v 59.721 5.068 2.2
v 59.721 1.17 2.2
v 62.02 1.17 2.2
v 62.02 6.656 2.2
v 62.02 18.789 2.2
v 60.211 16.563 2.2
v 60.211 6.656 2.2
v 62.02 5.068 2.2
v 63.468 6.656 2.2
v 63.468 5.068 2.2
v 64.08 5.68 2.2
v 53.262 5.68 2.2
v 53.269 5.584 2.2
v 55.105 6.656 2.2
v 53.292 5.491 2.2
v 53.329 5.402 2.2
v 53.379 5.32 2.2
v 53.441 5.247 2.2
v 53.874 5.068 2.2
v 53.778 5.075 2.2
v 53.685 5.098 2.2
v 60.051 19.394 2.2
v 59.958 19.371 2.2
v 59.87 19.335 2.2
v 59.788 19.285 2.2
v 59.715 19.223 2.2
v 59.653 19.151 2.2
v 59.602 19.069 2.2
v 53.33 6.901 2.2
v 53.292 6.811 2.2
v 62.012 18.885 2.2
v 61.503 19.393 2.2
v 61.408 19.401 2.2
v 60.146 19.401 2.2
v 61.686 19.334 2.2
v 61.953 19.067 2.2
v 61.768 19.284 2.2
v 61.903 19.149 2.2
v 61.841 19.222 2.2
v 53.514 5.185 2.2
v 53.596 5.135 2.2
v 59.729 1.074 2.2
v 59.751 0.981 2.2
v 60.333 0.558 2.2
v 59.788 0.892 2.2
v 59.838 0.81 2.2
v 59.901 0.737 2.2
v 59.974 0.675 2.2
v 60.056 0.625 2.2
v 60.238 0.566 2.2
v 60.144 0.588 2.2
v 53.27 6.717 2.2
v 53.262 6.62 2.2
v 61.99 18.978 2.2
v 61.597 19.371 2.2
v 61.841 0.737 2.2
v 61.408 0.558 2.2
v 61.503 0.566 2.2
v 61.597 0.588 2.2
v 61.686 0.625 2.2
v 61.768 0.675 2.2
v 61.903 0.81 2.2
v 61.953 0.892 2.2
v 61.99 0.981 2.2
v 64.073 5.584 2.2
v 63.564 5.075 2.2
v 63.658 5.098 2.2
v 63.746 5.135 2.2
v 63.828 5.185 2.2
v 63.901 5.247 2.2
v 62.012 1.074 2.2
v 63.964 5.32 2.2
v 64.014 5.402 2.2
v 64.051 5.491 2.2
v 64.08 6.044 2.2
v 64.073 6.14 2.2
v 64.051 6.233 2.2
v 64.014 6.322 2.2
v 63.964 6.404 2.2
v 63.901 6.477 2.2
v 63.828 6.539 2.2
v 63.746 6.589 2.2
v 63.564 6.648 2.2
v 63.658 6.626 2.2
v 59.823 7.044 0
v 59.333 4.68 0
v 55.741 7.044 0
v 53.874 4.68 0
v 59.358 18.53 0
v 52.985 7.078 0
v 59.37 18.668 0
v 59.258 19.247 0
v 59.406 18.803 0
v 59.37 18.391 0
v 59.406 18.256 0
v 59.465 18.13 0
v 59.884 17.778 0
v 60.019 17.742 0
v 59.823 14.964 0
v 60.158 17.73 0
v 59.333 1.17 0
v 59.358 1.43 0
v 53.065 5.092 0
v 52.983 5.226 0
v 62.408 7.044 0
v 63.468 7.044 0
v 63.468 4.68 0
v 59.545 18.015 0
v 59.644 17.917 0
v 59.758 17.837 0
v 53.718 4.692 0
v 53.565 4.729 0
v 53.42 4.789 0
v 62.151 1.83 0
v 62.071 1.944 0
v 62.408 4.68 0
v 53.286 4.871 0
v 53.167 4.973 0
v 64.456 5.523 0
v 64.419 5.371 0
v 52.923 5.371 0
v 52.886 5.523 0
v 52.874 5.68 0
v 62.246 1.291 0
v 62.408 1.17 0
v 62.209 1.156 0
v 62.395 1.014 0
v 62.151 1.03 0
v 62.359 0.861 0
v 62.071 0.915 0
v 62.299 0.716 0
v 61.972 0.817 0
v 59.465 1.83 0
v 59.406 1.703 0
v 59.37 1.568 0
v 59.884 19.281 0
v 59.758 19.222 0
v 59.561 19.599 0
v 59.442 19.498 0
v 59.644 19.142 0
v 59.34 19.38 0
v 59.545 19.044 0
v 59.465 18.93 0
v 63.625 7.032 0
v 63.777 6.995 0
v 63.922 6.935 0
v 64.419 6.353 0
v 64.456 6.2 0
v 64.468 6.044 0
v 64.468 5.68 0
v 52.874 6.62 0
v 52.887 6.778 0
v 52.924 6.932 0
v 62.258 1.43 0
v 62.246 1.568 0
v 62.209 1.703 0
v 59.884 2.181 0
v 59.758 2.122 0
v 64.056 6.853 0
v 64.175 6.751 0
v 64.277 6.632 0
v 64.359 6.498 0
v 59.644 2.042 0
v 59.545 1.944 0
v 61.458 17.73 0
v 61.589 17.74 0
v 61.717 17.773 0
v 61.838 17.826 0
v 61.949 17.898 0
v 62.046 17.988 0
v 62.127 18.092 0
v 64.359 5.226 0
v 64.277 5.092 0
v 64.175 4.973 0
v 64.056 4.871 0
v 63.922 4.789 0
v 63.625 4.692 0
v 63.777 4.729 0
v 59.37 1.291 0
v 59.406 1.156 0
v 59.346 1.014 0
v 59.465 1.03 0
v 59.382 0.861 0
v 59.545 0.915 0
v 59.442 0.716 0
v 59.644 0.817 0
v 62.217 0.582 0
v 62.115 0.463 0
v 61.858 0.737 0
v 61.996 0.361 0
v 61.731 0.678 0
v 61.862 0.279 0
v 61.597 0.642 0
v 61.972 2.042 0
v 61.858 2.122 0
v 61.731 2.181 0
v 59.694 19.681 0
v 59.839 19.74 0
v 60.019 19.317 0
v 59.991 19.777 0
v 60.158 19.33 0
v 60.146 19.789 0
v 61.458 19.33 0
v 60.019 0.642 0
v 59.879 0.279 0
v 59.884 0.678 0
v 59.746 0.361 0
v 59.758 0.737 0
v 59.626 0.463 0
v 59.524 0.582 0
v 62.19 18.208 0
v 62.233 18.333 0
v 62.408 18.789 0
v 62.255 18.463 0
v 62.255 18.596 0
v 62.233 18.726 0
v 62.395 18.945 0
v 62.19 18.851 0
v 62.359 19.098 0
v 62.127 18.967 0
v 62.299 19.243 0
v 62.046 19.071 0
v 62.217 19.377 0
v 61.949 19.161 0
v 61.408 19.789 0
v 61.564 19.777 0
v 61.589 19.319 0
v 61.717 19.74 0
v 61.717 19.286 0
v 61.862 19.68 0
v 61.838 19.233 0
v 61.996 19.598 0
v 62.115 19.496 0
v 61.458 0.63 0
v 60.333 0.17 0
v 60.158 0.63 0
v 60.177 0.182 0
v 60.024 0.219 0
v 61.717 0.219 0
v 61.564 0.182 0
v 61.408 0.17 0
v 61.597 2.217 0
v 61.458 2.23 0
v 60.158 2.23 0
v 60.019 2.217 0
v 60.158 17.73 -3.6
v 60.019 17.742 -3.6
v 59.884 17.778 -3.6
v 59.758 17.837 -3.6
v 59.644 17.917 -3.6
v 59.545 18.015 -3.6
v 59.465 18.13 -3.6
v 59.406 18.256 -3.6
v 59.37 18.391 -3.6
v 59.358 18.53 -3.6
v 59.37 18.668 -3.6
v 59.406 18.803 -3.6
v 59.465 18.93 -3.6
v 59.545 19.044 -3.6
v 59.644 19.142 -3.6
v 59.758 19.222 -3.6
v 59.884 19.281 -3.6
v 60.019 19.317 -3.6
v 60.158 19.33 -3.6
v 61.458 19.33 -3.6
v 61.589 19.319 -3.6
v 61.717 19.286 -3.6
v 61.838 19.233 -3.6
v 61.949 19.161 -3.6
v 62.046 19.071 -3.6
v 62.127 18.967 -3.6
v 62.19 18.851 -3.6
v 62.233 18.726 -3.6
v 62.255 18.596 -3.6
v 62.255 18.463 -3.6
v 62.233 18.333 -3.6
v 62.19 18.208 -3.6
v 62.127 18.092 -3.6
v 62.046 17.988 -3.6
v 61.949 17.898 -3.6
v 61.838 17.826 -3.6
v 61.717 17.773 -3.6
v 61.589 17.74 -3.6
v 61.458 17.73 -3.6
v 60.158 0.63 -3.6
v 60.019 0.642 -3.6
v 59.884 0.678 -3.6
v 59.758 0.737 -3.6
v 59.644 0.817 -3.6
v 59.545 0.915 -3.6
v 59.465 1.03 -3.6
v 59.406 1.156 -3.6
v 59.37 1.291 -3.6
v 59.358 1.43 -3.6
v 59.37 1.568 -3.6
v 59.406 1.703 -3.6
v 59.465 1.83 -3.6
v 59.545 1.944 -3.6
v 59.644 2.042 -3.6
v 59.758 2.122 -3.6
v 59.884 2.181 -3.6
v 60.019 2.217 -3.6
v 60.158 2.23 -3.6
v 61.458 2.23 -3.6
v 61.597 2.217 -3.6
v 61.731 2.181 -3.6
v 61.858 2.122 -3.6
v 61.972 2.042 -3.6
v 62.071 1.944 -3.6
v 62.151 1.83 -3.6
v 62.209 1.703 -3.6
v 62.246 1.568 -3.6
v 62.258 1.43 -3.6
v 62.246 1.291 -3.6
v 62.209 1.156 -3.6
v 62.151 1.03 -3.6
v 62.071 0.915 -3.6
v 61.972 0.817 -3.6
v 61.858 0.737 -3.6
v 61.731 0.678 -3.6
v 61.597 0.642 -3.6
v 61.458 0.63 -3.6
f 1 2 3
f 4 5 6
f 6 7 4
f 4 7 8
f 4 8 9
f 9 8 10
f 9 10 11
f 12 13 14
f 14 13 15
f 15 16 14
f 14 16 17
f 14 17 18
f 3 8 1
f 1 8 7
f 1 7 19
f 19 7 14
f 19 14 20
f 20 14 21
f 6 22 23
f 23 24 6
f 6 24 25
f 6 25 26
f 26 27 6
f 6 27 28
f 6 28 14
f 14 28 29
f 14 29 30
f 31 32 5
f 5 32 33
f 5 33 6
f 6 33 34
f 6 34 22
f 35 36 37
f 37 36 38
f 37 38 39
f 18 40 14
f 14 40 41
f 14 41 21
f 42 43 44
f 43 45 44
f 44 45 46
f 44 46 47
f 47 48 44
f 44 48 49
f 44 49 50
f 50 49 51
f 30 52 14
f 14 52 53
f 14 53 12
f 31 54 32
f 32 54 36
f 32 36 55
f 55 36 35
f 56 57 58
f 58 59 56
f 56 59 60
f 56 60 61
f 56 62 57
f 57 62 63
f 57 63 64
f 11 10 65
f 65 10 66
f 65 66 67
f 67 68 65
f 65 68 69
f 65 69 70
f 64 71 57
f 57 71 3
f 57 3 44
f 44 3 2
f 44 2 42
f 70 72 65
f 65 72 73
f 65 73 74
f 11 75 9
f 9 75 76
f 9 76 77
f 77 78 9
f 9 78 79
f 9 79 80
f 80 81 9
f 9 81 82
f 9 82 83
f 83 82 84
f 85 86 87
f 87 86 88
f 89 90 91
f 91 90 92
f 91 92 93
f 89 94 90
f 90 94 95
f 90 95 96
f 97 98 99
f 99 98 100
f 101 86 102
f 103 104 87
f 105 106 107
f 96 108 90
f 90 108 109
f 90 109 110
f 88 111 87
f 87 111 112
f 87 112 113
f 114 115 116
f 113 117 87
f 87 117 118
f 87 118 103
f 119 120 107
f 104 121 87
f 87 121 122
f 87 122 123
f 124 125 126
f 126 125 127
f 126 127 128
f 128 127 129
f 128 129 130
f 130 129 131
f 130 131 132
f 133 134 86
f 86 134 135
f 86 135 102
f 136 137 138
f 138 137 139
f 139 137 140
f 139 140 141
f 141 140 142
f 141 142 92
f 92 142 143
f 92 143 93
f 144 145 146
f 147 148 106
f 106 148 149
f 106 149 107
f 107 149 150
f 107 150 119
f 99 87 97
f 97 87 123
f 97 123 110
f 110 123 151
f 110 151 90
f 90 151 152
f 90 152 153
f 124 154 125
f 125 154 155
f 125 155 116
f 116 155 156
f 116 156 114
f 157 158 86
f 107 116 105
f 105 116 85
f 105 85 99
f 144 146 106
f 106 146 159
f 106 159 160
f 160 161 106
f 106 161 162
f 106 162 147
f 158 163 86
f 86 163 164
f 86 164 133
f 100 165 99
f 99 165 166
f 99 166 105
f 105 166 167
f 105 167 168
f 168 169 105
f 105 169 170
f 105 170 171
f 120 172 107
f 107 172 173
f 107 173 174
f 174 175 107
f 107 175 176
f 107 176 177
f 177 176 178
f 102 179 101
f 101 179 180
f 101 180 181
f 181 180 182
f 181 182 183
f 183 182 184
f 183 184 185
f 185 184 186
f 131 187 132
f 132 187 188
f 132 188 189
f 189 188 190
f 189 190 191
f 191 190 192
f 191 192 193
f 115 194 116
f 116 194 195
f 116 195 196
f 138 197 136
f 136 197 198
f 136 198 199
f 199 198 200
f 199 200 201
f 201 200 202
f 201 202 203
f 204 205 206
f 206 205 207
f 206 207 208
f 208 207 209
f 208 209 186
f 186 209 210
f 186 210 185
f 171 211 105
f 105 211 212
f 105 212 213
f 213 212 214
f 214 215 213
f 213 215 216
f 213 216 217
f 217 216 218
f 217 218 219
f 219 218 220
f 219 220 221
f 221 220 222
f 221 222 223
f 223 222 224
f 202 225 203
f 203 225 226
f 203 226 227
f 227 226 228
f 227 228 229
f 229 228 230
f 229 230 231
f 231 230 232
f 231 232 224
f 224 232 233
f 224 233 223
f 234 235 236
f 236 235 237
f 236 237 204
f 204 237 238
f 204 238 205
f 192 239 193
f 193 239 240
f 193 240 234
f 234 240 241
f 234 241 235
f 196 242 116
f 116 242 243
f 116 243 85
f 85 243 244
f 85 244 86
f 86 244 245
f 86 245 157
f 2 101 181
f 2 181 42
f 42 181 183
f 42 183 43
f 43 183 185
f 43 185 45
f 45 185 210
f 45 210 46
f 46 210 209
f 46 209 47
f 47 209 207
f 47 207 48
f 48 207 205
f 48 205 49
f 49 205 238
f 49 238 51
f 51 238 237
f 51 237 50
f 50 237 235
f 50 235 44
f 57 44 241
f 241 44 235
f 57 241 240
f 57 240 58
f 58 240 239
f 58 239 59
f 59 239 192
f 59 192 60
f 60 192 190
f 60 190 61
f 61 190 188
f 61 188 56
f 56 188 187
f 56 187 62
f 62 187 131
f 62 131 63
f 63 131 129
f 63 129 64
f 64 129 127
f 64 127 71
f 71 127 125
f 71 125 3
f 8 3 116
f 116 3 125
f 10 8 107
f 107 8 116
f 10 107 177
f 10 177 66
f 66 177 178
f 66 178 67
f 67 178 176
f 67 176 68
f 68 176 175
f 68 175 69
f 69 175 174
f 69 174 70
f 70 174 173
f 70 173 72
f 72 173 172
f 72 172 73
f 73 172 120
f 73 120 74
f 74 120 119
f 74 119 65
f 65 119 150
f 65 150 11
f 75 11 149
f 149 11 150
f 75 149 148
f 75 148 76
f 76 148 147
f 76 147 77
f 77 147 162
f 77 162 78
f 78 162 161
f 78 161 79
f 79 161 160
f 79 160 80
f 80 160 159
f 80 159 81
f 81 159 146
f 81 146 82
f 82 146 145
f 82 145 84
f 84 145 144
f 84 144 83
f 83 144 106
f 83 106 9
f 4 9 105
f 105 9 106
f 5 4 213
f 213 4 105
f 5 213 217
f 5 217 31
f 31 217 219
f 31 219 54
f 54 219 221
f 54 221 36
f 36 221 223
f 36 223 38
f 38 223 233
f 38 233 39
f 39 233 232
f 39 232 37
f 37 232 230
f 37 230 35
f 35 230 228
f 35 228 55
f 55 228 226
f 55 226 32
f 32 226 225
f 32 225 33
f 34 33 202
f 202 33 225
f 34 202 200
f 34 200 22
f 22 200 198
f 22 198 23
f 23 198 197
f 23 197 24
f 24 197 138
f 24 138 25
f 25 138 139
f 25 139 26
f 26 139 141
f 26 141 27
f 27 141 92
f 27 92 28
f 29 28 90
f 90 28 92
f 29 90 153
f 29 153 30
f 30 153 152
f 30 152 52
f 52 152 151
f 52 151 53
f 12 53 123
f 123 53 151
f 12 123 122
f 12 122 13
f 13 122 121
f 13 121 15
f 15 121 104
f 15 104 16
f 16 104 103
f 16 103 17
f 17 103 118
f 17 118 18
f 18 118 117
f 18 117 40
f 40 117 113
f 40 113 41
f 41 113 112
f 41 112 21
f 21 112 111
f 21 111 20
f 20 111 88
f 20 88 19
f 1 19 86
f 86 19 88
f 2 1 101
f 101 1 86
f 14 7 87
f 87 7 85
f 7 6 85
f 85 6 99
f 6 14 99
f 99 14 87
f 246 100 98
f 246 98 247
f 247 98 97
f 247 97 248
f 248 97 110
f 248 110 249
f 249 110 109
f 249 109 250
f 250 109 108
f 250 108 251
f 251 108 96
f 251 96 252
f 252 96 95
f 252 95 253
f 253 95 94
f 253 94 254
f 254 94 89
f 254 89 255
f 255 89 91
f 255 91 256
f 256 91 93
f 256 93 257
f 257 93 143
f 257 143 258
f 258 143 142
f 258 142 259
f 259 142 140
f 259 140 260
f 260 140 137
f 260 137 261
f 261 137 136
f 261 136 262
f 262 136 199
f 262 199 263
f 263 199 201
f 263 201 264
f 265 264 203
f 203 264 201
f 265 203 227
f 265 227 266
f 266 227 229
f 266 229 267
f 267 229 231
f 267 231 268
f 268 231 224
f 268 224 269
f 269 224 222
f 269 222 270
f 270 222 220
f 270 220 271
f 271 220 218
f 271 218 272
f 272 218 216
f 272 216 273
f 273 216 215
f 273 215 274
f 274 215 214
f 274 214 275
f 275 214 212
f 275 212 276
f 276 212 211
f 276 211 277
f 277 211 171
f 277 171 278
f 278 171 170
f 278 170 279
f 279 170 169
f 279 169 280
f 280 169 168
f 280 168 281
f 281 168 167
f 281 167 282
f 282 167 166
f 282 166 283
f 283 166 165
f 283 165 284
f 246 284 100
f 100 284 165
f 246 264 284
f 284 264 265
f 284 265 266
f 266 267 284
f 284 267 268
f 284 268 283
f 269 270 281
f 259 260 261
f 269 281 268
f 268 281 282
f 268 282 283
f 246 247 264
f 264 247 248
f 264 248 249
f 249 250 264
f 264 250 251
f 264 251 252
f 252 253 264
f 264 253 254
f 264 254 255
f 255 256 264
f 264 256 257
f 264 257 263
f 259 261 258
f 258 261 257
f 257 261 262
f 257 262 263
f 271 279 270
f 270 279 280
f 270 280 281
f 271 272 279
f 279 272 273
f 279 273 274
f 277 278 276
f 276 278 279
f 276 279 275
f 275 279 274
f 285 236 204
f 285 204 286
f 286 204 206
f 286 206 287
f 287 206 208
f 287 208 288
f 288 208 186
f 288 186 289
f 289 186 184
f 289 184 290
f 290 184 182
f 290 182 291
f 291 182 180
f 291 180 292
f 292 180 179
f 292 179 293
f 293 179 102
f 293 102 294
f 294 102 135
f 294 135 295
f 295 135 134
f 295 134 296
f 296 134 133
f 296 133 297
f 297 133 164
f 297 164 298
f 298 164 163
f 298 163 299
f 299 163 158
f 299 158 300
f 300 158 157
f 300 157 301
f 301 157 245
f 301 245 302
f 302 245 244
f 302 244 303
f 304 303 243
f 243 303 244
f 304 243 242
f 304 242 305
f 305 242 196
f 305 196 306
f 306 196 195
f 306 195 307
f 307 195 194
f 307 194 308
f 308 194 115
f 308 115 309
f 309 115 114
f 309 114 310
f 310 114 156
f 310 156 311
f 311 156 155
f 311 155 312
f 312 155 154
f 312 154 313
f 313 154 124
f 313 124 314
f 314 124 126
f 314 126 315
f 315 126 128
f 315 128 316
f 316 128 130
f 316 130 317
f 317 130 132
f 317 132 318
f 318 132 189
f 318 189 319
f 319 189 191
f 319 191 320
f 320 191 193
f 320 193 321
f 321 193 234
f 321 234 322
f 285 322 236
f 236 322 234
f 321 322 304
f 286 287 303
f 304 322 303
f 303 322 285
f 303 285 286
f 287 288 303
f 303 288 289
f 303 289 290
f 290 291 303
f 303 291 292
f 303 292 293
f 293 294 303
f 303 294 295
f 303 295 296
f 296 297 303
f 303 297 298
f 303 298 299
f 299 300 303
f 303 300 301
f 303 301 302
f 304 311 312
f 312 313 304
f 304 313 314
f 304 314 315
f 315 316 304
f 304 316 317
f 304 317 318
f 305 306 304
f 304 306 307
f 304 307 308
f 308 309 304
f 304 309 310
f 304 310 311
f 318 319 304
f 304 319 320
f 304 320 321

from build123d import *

# Parameters (mm, degrees)
BOSS_EXTRU_3_DEPTH = 2.2
BOSS_EXTRU_3_DRAFT = 10
BOSS_EXTRU_4_DEPTH = 3.6


with BuildPart() as part:
    # Esquisse2 → Boss.-Extru.3 (with draft: the straight prism first)
    with BuildSketch(Plane.XY):
        with BuildLine():
            ThreePointArc((59.333408072, 1.170179372), (59.626301291, 0.463072591), (60.333408072, 0.170179372))
            Line((60.333408072, 0.170179372), (61.407735426, 0.170179372))
            ThreePointArc((61.407735426, 0.170179372), (62.114842207, 0.463072591), (62.407735426, 1.170179372))
            Line((62.407735426, 1.170179372), (62.407735426, 4.679932735))
            Line((62.407735426, 4.679932735), (63.46838565, 4.679932735))
            ThreePointArc((63.46838565, 4.679932735), (64.175492431, 4.972825954), (64.46838565, 5.679932735))
            Line((64.46838565, 5.679932735), (64.46838565, 6.043946188))
            ThreePointArc((64.46838565, 6.043946188), (64.175492431, 6.75105297), (63.46838565, 7.043946188))
            Line((63.46838565, 7.043946188), (62.407735426, 7.043946188))
            Line((62.407735426, 7.043946188), (62.407735426, 18.788901345))
            ThreePointArc((62.407735426, 18.788901345), (62.114842207, 19.496008126), (61.407735426, 19.788901345))
            Line((61.407735426, 19.788901345), (60.146458975, 19.788901345))
            ThreePointArc((60.146458975, 19.788901345), (59.625963925, 19.642766032), (59.257594289, 19.24707115))
            Line((59.257594289, 19.24707115), (52.985126346, 7.078274373))
            ThreePointArc((52.985126346, 7.078274373), (52.902171942, 6.855832499), (52.873991031, 6.620104568))
            Line((52.873991031, 6.620104568), (52.873991031, 5.679932735))
            ThreePointArc((52.873991031, 5.679932735), (53.16688425, 4.972825954), (53.873991031, 4.679932735))
            Line((53.873991031, 4.679932735), (59.333408072, 4.679932735))
            Line((59.333408072, 4.679932735), (59.333408072, 2.689573991))
            Line((59.333408072, 2.689573991), (59.333408072, 1.170179372))
        make_face()
        Polygon((59.823459842, 7.043946188), (59.823459842, 14.963775897), (55.741143498, 7.043946188), align=None, mode=Mode.SUBTRACT)
    extrude(amount=BOSS_EXTRU_3_DEPTH)
    # Boss.-Extru.3: the draft: its side faces are tilted about the plane it starts from
    boss_extru_3_sides = [part.faces().sort_by_distance(p)[0] for p in [
        (60.777097201, 19.788901345, 1.1),
        (59.823459842, 11.003861043, 1.1),
        (57.78230167, 11.003861043, 1.1),
        (57.78230167, 7.043946188, 1.1),
        (62.407735426, 12.916423767, 1.1),
        (62.938060538, 7.043946188, 1.1),
        (64.175492431, 6.75105297, 1.1),
        (64.46838565, 5.861939462, 1.1),
        (64.175492431, 4.972825954, 1.1),
        (62.938060538, 4.679932735, 1.1),
        (62.407735426, 2.925056054, 1.1),
        (62.114842207, 0.463072591, 1.1),
        (60.870571749, 0.170179372, 1.1),
        (59.626301291, 0.463072591, 1.1),
        (59.333408072, 2.925056054, 1.1),
        (56.603699552, 4.679932735, 1.1),
        (53.16688425, 4.972825954, 1.1),
        (52.873991031, 6.150018652, 1.1),
        (52.902171942, 6.855832499, 1.1),
        (56.121360317, 13.162672762, 1.1),
        (59.625963925, 19.642766032, 1.1),
        (62.114842207, 19.496008126, 1.1),
    ]]
    draft(boss_extru_3_sides, Plane.XY, BOSS_EXTRU_3_DRAFT)

    # Esquisse3 → Boss.-Extru.4 (add)
    with BuildSketch(Plane.XY):
        with BuildLine():
            Line((60.157735426, 19.329540359), (61.457735426, 19.329540359))
            ThreePointArc((61.457735426, 19.329540359), (62.257735426, 18.529540359), (61.457735426, 17.729540359))
            Line((61.457735426, 17.729540359), (60.157735426, 17.729540359))
            ThreePointArc((60.157735426, 17.729540359), (59.357735426, 18.529540359), (60.157735426, 19.329540359))
        make_face()
        with BuildLine():
            Line((60.157735426, 2.229540359), (61.457735426, 2.229540359))
            ThreePointArc((61.457735426, 2.229540359), (62.257735426, 1.429540359), (61.457735426, 0.629540359))
            Line((61.457735426, 0.629540359), (60.157735426, 0.629540359))
            ThreePointArc((60.157735426, 0.629540359), (59.357735426, 1.429540359), (60.157735426, 2.229540359))
        make_face()
    extrude(amount=-BOSS_EXTRU_4_DEPTH)


solid = part.part
